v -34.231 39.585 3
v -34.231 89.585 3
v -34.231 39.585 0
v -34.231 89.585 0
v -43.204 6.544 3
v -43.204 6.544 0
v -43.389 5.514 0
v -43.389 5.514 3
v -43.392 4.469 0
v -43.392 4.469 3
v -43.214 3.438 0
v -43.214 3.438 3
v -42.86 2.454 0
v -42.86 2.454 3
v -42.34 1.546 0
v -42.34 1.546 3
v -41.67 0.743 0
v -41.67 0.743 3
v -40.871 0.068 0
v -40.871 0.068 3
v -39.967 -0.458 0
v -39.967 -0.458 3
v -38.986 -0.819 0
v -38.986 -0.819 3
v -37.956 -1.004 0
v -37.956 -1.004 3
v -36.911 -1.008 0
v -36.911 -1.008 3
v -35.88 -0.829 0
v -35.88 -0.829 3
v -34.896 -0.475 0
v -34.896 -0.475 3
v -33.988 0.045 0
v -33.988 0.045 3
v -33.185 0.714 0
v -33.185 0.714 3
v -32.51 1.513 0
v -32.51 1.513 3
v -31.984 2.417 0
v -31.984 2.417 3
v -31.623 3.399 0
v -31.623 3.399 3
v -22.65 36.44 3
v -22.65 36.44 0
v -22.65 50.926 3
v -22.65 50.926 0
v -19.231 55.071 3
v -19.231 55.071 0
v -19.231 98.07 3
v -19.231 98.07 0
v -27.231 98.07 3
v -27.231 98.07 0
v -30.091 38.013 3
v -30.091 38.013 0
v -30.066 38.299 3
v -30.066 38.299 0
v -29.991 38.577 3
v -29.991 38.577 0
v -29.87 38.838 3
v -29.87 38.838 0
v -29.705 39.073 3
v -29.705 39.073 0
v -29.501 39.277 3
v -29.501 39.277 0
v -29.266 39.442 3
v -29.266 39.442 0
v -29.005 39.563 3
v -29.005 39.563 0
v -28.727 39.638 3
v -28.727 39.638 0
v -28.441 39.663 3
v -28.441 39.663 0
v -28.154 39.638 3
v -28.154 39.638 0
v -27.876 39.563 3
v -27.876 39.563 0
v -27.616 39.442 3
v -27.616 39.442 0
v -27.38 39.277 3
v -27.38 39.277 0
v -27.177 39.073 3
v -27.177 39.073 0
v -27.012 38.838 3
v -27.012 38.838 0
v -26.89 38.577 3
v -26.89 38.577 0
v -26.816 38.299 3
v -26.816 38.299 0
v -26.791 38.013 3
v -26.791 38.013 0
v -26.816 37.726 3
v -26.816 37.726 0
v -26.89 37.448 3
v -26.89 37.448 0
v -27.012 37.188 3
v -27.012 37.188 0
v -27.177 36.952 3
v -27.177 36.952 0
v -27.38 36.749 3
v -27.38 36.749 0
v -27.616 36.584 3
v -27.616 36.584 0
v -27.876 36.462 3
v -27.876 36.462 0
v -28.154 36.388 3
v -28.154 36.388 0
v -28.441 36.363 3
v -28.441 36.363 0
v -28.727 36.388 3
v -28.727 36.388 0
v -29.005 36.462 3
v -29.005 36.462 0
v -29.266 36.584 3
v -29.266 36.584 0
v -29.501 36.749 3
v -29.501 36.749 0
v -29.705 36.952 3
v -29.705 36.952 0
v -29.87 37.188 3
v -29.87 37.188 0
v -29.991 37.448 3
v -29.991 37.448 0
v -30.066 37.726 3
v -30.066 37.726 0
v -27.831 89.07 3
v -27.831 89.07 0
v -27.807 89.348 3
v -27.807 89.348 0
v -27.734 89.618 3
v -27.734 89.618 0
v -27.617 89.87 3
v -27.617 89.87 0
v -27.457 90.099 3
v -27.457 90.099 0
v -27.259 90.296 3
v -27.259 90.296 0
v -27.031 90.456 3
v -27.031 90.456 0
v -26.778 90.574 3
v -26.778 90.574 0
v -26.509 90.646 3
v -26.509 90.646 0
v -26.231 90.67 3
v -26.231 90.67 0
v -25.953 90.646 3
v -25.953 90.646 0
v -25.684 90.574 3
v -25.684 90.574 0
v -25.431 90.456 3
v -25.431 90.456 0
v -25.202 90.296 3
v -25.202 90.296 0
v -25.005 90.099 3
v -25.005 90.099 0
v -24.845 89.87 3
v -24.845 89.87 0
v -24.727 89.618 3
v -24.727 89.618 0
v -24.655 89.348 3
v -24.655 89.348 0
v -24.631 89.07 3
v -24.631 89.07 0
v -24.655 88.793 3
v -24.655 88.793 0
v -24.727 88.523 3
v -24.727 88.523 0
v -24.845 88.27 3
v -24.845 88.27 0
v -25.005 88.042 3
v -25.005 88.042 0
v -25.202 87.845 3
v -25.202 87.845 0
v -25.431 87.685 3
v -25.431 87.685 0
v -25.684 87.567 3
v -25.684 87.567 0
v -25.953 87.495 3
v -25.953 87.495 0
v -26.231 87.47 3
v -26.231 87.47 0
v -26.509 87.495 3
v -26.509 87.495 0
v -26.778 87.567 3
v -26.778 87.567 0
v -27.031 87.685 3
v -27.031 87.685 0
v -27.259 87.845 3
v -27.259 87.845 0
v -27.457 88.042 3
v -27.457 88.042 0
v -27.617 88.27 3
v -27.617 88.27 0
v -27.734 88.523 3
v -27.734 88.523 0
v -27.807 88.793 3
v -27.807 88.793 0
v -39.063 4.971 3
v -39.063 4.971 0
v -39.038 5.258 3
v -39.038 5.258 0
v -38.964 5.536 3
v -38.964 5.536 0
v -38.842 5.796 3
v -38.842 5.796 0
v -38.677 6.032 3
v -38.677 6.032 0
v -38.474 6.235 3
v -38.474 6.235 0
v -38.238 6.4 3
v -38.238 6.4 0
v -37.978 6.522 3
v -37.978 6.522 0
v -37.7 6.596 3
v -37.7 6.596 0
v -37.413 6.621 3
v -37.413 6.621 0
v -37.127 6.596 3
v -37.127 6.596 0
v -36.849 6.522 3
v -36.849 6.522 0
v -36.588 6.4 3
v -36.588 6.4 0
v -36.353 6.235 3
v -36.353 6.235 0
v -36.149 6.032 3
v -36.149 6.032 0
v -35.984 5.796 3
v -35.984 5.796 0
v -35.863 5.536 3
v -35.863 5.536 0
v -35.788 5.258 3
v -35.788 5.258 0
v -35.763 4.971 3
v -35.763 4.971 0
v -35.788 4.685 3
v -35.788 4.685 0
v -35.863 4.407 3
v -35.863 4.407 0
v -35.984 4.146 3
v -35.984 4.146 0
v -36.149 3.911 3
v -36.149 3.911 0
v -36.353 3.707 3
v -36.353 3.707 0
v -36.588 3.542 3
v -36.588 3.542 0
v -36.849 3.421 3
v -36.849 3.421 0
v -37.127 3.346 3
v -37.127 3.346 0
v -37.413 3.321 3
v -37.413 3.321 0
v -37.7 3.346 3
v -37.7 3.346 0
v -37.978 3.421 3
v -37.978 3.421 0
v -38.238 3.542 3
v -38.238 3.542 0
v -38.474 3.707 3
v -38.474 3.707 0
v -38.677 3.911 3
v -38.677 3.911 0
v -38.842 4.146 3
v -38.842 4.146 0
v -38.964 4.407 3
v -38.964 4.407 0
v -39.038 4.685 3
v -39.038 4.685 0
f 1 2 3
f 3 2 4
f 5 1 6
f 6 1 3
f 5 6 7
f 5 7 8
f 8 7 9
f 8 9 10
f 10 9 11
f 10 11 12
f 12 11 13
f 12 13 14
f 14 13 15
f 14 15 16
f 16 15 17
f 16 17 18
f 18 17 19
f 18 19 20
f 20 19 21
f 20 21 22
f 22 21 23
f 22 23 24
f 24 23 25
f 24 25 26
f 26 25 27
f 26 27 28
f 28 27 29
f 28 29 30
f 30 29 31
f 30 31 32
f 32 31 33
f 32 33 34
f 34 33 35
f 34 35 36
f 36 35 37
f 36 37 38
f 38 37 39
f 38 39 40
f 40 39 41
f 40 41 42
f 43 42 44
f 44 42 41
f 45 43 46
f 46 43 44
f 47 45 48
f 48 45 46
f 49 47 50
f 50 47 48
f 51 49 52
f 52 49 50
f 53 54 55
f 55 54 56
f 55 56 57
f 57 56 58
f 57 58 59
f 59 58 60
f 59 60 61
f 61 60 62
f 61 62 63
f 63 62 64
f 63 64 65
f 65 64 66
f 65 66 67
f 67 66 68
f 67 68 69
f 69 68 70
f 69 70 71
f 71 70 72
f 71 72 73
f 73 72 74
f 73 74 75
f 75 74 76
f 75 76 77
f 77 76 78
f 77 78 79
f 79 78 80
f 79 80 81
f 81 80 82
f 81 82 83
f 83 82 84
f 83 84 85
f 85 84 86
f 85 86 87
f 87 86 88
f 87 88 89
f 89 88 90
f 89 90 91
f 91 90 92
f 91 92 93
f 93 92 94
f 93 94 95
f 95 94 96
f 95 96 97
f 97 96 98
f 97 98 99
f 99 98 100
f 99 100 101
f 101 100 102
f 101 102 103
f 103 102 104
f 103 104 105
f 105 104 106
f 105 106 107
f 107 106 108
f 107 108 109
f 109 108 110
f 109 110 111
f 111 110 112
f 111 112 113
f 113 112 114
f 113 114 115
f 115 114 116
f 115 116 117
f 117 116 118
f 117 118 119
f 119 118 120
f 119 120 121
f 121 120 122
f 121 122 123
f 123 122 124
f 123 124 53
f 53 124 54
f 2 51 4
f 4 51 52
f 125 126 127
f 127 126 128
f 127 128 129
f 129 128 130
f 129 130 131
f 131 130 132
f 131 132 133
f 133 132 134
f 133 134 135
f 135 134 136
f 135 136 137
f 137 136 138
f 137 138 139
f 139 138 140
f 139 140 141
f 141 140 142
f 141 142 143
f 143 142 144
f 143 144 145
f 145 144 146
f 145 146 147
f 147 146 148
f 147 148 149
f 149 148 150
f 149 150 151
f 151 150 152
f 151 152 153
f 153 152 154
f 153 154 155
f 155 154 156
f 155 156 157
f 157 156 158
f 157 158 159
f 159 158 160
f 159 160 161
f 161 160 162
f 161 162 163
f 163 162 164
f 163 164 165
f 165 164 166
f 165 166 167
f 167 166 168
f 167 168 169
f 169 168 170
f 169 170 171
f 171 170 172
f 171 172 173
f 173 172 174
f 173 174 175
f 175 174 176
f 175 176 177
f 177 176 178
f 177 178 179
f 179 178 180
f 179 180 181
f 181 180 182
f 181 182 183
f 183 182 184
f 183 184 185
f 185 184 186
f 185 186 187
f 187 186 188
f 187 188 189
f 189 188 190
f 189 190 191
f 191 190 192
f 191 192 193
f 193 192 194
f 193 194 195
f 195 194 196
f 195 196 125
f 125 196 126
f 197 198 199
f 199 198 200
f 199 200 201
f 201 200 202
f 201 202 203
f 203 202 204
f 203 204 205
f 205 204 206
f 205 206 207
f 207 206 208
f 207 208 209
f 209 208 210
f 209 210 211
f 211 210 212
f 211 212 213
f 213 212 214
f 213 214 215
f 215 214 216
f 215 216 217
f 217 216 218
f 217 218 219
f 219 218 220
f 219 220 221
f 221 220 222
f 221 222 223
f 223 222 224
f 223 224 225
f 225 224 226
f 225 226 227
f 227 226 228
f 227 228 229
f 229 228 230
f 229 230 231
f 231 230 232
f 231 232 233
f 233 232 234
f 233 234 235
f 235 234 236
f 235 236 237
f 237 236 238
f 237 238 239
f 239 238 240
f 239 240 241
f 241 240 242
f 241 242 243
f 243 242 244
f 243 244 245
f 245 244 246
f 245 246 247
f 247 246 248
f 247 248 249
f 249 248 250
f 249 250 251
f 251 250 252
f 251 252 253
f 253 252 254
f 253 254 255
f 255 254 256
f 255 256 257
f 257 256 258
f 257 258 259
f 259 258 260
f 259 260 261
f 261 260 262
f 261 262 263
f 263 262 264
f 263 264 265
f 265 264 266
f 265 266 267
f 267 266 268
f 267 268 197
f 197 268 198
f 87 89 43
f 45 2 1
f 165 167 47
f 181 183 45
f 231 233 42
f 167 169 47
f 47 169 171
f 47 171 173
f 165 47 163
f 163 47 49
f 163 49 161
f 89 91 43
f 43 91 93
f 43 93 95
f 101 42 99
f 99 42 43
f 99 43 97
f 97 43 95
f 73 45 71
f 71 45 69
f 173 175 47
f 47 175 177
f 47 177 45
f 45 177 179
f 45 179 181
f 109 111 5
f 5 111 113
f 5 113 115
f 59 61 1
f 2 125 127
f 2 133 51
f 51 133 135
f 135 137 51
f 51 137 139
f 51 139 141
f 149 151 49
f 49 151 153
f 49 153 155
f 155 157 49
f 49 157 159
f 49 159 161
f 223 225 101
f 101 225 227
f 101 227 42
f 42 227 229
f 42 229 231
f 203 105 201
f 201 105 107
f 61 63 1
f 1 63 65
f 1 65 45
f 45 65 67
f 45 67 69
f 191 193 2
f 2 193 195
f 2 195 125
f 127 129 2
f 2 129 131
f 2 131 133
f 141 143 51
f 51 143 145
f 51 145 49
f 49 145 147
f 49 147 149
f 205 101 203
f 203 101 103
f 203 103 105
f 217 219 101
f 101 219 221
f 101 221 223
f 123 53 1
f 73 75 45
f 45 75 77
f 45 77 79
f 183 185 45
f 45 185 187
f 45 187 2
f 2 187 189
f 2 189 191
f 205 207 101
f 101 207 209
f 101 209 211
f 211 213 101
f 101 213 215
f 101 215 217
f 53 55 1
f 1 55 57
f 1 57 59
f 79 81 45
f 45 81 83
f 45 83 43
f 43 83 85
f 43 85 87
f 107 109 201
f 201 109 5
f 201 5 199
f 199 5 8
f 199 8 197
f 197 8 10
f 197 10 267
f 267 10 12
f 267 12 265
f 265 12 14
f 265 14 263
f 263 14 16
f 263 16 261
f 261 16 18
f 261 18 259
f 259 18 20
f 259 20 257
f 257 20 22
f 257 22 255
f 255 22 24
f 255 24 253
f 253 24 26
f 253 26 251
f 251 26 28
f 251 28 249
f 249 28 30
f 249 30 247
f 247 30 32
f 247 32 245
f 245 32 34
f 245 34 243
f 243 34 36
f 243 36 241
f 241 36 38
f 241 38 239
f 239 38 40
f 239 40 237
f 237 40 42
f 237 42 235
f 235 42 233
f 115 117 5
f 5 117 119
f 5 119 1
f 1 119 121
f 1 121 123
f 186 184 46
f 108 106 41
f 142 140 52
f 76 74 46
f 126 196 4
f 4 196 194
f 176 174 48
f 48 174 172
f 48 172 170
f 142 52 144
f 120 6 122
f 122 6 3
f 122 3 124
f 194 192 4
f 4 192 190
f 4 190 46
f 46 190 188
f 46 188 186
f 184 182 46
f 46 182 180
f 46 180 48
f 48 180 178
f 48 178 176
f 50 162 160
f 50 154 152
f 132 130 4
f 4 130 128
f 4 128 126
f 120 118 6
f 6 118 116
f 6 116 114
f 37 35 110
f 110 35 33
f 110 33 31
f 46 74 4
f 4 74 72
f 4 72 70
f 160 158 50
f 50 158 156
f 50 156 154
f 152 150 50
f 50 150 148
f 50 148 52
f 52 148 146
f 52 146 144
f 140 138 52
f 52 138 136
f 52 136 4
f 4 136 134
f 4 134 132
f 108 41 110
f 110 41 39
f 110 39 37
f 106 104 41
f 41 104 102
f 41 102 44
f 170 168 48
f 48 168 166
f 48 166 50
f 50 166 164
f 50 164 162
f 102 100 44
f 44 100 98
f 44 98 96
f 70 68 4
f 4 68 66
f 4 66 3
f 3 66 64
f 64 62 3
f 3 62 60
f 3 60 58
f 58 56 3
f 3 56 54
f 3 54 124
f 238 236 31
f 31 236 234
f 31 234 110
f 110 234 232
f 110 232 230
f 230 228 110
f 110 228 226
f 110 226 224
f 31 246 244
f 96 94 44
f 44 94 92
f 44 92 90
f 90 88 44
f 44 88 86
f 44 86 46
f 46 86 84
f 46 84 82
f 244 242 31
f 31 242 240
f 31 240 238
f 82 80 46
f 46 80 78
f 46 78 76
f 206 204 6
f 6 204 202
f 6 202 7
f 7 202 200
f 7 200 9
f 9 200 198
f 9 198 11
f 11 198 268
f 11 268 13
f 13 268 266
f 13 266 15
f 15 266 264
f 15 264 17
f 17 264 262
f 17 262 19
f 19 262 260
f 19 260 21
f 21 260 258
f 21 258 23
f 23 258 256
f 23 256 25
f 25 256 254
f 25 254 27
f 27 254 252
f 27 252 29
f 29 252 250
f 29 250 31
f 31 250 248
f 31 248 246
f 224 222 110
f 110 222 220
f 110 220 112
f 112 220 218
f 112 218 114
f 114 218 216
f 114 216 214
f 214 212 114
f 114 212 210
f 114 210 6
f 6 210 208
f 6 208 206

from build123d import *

# Parameters (mm, degrees)
SKETCH1_R           = 1.65
SKETCH1_R_2         = 1.6
BOSS_EXTRUDE1_DEPTH = 3


with BuildPart() as part:
    # Sketch1 → Boss-Extrude1 (new body)
    with BuildSketch(Plane.XY):
        with BuildLine():
            Line((-43.203651579, 6.54376887), (-34.230867434, 39.585145796))
            Line((-34.230867434, 39.585145796), (-34.230867434, 89.585145796))
            Line((-34.230867434, 89.585145796), (-27.230867434, 98.07042717))
            Line((-27.230867434, 98.07042717), (-19.230867434, 98.07042717))
            Line((-19.230867434, 98.07042717), (-19.230867434, 55.070526621))
            Line((-19.230867434, 55.070526621), (-22.650283011, 50.925569007))
            Line((-22.650283011, 50.925569007), (-22.650283011, 36.440298517))
            Line((-22.650283011, 36.440298517), (-31.623067155, 3.398921591))
            ThreePointArc((-31.623067155, 3.398921591), (-38.985783006, -0.818946981), (-43.203651579, 6.54376887))
        make_face()
        with Locations((-28.440575223, 38.012722157)):
            Circle(SKETCH1_R, mode=Mode.SUBTRACT)
        with Locations((-37.413359367, 4.97134523)):
            Circle(SKETCH1_R, mode=Mode.SUBTRACT)
        with Locations((-26.230867434, 89.07042717)):
            Circle(SKETCH1_R_2, mode=Mode.SUBTRACT)
    extrude(amount=BOSS_EXTRUDE1_DEPTH)


solid = part.part
